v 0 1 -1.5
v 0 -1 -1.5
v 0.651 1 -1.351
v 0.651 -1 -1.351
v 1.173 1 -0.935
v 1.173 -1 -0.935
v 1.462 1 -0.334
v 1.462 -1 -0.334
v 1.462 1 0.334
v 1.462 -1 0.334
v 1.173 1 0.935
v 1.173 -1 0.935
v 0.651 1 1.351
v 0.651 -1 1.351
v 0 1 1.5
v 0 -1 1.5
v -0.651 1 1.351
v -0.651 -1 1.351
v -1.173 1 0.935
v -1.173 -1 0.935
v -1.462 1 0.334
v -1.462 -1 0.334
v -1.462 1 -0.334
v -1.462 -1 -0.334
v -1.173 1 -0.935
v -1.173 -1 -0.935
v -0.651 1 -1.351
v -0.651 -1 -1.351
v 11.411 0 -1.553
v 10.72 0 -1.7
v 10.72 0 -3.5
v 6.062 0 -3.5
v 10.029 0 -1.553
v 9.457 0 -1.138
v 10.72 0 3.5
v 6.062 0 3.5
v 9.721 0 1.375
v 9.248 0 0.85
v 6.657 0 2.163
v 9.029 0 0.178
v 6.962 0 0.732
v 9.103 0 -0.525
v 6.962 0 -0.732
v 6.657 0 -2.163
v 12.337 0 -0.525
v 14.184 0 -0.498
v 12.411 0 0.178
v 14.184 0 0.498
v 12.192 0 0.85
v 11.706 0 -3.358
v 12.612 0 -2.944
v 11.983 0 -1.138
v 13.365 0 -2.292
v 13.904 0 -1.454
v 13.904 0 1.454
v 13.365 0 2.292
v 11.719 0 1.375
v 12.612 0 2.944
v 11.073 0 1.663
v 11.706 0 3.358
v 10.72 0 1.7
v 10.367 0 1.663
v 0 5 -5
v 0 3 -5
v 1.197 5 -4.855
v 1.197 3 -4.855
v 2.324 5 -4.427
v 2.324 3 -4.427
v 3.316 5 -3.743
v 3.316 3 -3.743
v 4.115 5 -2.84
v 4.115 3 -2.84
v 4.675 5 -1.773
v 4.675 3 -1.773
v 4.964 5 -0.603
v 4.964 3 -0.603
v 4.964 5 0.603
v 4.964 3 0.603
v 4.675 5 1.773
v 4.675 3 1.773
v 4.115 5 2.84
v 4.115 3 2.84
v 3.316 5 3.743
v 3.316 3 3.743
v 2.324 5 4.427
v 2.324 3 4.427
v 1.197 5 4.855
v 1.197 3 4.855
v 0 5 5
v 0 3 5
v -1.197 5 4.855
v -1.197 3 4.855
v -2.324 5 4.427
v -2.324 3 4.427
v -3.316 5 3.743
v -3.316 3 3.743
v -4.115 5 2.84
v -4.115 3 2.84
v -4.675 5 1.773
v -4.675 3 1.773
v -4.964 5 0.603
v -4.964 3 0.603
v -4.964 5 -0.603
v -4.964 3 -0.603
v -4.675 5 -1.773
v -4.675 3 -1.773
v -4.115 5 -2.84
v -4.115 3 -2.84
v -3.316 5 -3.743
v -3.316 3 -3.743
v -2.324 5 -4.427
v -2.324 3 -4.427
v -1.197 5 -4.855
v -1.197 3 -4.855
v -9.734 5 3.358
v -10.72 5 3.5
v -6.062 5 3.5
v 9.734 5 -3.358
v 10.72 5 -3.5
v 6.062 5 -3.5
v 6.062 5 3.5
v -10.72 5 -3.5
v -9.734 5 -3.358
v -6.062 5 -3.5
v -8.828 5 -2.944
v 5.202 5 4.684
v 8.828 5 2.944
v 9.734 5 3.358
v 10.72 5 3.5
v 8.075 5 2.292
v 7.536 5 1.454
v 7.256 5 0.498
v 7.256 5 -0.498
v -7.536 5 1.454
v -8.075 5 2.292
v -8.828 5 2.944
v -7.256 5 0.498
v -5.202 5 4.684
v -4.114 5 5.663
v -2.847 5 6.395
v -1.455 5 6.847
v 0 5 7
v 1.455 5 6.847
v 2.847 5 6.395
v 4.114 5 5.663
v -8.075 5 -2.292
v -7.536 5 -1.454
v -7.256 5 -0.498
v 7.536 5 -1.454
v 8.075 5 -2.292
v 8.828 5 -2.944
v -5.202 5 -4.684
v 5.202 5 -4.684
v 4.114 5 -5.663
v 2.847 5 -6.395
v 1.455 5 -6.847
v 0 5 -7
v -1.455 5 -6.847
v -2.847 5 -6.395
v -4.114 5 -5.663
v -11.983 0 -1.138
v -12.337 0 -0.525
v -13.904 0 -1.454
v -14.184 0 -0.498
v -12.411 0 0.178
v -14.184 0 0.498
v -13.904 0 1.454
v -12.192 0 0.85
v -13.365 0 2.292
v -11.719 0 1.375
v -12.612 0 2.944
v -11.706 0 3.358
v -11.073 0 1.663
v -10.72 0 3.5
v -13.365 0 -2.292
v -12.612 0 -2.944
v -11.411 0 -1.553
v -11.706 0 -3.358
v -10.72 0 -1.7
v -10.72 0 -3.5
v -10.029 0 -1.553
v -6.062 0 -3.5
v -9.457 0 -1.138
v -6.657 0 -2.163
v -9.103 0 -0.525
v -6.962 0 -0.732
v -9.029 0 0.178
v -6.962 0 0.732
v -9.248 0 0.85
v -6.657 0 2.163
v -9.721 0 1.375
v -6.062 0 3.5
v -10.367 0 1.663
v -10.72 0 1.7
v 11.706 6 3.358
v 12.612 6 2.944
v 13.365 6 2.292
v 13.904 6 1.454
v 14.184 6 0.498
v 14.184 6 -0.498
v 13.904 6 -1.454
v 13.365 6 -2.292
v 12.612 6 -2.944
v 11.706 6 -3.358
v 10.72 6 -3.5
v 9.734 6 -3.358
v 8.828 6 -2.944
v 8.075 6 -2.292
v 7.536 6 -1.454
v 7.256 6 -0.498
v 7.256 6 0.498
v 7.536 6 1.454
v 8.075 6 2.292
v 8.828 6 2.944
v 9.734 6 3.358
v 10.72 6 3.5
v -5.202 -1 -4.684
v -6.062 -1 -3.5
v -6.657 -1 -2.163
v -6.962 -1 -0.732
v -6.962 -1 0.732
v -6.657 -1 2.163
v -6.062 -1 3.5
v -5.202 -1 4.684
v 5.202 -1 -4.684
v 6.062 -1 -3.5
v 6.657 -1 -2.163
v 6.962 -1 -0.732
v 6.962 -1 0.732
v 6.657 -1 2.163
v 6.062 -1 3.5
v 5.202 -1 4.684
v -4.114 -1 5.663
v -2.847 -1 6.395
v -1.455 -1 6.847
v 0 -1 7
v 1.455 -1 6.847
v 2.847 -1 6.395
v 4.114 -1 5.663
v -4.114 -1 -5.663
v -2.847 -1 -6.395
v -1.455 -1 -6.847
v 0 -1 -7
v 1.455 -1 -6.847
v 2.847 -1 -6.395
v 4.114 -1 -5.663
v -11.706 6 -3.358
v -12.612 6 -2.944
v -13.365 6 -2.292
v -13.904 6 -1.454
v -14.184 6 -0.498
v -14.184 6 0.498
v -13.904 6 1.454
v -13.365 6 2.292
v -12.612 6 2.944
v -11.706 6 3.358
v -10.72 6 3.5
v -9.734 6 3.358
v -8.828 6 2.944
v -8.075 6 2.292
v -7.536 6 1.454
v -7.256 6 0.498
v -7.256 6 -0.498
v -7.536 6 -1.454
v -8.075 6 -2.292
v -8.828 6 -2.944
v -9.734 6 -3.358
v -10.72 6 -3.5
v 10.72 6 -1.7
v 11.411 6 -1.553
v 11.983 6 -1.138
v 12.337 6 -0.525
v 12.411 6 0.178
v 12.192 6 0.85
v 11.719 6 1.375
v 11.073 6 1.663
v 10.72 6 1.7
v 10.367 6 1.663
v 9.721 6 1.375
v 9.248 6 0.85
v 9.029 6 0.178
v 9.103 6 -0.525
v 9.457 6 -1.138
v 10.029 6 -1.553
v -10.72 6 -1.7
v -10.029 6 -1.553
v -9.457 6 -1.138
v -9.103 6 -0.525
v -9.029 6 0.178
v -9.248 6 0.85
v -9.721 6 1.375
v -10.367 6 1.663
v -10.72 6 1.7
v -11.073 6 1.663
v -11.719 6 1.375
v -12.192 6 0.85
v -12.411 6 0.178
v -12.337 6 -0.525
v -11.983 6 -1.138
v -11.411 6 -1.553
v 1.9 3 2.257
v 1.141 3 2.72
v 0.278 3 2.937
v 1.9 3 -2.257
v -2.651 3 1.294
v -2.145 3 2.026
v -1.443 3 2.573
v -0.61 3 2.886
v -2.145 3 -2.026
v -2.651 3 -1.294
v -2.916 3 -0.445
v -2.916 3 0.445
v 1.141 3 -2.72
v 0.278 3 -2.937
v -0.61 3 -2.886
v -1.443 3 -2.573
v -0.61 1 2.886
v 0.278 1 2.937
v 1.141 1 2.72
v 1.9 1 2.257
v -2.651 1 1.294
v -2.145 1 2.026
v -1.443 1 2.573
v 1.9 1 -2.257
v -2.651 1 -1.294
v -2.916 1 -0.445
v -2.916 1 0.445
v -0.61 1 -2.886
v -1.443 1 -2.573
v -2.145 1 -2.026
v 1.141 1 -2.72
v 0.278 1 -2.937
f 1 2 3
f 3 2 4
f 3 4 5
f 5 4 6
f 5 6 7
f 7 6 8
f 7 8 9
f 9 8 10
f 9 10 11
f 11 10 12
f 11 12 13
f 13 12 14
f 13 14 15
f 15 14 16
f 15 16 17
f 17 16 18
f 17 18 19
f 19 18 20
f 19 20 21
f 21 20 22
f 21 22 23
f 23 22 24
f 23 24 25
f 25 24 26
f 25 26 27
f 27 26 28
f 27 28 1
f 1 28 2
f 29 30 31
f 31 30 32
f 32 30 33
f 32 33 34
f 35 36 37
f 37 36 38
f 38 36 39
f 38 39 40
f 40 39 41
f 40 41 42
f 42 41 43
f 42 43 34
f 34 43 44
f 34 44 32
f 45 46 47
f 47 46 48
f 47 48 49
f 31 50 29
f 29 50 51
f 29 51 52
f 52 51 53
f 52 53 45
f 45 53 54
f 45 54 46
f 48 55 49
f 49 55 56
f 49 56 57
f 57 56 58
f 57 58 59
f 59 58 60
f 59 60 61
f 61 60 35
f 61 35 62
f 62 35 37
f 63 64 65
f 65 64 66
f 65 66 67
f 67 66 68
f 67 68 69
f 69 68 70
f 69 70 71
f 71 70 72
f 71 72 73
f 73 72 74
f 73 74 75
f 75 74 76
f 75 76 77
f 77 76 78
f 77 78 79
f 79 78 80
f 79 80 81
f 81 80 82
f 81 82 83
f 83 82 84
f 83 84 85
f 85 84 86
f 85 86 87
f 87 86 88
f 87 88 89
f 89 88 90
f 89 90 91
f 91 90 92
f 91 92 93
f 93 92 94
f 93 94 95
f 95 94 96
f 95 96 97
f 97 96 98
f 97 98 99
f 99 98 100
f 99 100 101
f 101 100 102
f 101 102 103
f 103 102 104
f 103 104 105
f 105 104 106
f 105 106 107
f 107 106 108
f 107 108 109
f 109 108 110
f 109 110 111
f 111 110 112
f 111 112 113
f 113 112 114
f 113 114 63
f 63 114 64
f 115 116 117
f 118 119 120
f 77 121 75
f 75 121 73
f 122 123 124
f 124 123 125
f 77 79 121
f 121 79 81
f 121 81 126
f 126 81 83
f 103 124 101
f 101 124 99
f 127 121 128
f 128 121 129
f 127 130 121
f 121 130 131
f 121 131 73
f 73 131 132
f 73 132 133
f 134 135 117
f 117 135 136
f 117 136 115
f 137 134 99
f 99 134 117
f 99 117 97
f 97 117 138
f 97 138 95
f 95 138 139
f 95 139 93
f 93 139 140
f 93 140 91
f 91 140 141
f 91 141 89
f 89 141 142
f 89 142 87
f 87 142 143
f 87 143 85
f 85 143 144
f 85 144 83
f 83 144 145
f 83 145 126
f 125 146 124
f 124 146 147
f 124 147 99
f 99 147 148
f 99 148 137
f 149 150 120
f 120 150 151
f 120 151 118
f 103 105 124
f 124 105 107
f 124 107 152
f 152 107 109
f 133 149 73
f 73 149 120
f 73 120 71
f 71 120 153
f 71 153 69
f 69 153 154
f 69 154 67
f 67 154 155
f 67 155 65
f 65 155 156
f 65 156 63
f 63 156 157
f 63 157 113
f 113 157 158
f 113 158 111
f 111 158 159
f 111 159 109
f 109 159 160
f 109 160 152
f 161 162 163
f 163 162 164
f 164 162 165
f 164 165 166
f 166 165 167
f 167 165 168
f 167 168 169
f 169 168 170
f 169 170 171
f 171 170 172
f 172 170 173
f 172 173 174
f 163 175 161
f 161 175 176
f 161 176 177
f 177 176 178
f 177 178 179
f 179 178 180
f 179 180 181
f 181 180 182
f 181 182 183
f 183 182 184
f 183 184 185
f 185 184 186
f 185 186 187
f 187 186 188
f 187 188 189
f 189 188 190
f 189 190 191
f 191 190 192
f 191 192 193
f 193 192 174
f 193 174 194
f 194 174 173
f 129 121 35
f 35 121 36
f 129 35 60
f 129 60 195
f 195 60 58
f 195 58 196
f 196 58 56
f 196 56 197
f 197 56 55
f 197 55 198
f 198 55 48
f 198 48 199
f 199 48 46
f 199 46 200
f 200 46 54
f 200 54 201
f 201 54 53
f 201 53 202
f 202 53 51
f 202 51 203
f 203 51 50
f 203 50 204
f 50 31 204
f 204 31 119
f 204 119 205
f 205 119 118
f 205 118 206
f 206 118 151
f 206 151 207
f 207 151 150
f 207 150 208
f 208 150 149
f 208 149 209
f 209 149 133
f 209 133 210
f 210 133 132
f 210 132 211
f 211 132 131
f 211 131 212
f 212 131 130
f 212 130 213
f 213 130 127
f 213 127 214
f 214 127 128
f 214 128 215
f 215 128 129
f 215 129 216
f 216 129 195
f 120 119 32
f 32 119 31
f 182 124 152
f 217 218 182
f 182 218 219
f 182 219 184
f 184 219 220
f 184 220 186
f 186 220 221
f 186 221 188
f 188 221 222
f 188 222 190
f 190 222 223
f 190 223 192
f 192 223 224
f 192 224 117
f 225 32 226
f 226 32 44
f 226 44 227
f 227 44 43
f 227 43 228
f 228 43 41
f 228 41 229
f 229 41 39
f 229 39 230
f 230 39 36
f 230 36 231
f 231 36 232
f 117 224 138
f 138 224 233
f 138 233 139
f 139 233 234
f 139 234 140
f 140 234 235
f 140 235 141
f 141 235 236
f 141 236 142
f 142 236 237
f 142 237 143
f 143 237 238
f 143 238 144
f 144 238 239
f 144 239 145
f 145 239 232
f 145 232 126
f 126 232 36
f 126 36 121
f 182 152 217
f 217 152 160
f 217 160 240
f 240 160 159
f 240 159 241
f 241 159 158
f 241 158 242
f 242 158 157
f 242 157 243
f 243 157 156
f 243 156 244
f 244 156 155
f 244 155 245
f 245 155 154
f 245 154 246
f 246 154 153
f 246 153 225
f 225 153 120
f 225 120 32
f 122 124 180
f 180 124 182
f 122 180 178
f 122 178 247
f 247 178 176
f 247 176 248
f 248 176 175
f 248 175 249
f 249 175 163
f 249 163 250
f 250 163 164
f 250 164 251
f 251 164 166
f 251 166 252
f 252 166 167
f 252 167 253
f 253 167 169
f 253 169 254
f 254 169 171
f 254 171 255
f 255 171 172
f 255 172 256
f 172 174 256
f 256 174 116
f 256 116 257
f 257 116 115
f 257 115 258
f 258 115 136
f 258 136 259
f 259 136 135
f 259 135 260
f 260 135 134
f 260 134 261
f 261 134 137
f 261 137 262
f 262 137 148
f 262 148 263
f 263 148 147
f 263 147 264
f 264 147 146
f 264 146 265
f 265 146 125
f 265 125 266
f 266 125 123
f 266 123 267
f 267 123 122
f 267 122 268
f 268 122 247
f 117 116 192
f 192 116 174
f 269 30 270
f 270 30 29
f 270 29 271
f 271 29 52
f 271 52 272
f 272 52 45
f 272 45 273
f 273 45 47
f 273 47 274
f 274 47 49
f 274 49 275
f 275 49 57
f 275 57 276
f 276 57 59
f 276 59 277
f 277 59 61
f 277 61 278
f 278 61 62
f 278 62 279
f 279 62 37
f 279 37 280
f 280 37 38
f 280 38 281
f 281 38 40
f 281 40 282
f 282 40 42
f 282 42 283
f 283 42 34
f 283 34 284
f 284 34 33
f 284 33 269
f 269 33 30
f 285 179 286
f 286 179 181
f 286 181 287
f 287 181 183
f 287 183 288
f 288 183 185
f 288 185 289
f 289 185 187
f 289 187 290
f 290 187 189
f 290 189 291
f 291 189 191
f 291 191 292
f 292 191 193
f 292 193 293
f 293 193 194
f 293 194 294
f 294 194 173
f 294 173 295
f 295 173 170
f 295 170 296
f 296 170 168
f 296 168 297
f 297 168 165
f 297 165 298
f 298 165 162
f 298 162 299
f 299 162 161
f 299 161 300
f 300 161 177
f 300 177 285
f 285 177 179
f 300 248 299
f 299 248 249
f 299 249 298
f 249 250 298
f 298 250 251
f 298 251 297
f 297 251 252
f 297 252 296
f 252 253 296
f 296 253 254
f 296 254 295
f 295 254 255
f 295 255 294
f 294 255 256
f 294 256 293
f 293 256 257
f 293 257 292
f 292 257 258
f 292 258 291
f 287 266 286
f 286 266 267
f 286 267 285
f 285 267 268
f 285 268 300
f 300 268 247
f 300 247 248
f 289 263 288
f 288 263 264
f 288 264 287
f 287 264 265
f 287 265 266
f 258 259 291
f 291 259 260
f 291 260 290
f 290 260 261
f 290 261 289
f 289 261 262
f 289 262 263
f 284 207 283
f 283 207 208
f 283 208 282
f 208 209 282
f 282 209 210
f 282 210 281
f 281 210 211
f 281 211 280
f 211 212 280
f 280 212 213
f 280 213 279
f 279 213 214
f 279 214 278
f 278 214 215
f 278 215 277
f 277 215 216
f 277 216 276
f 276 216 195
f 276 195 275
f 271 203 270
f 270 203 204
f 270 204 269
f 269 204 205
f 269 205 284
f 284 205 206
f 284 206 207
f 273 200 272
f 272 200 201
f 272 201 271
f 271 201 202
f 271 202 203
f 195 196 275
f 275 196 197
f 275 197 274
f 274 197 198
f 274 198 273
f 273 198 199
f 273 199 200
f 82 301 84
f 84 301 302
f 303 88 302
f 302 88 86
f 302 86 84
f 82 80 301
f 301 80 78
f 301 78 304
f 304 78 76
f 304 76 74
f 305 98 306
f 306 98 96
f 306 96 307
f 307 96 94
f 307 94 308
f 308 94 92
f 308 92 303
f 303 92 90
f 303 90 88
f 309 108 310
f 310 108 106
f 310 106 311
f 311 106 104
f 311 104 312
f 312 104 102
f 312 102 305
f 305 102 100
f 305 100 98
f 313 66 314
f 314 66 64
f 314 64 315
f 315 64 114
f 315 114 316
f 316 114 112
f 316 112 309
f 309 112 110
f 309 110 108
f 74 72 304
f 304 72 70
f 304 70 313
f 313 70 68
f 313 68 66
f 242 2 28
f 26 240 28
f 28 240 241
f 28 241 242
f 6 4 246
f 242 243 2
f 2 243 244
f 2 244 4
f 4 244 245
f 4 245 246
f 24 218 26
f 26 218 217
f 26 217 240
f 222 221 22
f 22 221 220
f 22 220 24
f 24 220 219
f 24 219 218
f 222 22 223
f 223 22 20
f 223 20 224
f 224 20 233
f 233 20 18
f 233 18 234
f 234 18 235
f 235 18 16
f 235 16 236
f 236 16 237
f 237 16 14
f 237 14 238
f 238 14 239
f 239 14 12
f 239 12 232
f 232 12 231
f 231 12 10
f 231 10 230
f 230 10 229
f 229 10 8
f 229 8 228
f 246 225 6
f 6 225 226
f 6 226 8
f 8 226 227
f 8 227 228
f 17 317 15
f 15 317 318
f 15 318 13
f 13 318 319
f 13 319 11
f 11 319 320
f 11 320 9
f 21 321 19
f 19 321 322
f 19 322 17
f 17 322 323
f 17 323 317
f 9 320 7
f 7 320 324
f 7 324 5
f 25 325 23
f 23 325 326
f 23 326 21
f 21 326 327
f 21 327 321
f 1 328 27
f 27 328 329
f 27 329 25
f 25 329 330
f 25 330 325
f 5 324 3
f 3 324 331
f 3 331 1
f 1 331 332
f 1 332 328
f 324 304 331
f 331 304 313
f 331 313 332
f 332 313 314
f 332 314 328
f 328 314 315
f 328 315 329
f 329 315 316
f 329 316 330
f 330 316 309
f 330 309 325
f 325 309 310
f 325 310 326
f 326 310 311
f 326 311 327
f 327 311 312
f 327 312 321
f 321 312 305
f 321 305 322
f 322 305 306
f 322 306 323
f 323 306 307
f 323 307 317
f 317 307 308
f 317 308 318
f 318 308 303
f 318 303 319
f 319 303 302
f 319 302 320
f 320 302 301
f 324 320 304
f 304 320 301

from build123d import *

# Parameters (mm, degrees)
ESQUISSE1_R             = 5
ESQUISSE1_R_2           = 1.7
BOSS_EXTRU_1_DEPTH      = 5
ESQUISSE2_R             = 3.5
ESQUISSE2_R_2           = 1.7
BOSS_EXTRU_2_DEPTH      = 1
BOSS_EXTRU_3_DEPTH      = 1
BOSS_EXTRU_3_DEPTH_BACK = 3
ESQUISSE3_R             = 7
ESQUISSE3_R_2           = 1.5
ENL_V_MAT_EXTRU_1_DEPTH = 2


with BuildPart() as part:
    # Esquisse1 → Boss.-Extru.1 (new body)
    with BuildSketch(Plane(origin=(0, 0, 0), x_dir=(1, 0, 0), z_dir=(0, 1, 0))):
        with BuildLine():
            Line((-10.72, 3.5), (-6.062177826, 3.5))
            ThreePointArc((-6.062177826, 3.5), (0, 7), (6.062177826, 3.5))
            Line((6.062177826, 3.5), (10.72, 3.5))
            ThreePointArc((10.72, 3.5), (14.22, 0), (10.72, -3.5))
            Line((10.72, -3.5), (6.062177826, -3.5))
            ThreePointArc((6.062177826, -3.5), (0, -7), (-6.062177826, -3.5))
            Line((-6.062177826, -3.5), (-10.72, -3.5))
            ThreePointArc((-10.72, -3.5), (-14.22, 0), (-10.72, 3.5))
        make_face()
        Circle(ESQUISSE1_R, mode=Mode.SUBTRACT)
        with Locations((10.72, 0)):
            Circle(ESQUISSE1_R_2, mode=Mode.SUBTRACT)
        with Locations((-10.72, 0)):
            Circle(ESQUISSE1_R_2, mode=Mode.SUBTRACT)
    extrude(amount=BOSS_EXTRU_1_DEPTH)

    # Esquisse2 → Boss.-Extru.2 (add)
    # profile 1 of 2: a face of its own
    with BuildSketch(Plane(origin=(0, 5, 0), x_dir=(1, 0, 0), z_dir=(0, 1, 0))):
        with Locations((-10.72, 0)):
            Circle(ESQUISSE2_R)
        with Locations((-10.72, 0)):
            Circle(ESQUISSE2_R_2, mode=Mode.SUBTRACT)
    # profile 2 of 2: a face of its own
    with BuildSketch(Plane(origin=(0, 5, 0), x_dir=(1, 0, 0), z_dir=(0, 1, 0))):
        with Locations((10.72, 0)):
            Circle(ESQUISSE2_R)
        with Locations((10.72, 0)):
            Circle(ESQUISSE2_R_2, mode=Mode.SUBTRACT)
    extrude(amount=BOSS_EXTRU_2_DEPTH)

    # Esquisse3 → Boss.-Extru.3 (add, two sides: drawn at the far end of the back side and taken through both)
    with BuildSketch(Plane.XZ.offset(-BOSS_EXTRU_3_DEPTH_BACK)):
        Circle(ESQUISSE3_R)
        Circle(ESQUISSE3_R_2, mode=Mode.SUBTRACT)
    extrude(amount=BOSS_EXTRU_3_DEPTH + BOSS_EXTRU_3_DEPTH_BACK)

    # Esquisse6 → Enlèv. mat.-Extru.1 (cut)
    with BuildSketch(Plane(origin=(0, 3, 0), x_dir=(1, 0, 0), z_dir=(0, 1, 0))):
        with BuildLine():
            Line((1.9, 2.256656819), (1.9, -2.256656819))
            ThreePointArc((1.9, -2.256656819), (-2.95, 0), (1.9, 2.256656819))
        make_face()
    extrude(amount=-ENL_V_MAT_EXTRU_1_DEPTH, mode=Mode.SUBTRACT)


solid = part.part
